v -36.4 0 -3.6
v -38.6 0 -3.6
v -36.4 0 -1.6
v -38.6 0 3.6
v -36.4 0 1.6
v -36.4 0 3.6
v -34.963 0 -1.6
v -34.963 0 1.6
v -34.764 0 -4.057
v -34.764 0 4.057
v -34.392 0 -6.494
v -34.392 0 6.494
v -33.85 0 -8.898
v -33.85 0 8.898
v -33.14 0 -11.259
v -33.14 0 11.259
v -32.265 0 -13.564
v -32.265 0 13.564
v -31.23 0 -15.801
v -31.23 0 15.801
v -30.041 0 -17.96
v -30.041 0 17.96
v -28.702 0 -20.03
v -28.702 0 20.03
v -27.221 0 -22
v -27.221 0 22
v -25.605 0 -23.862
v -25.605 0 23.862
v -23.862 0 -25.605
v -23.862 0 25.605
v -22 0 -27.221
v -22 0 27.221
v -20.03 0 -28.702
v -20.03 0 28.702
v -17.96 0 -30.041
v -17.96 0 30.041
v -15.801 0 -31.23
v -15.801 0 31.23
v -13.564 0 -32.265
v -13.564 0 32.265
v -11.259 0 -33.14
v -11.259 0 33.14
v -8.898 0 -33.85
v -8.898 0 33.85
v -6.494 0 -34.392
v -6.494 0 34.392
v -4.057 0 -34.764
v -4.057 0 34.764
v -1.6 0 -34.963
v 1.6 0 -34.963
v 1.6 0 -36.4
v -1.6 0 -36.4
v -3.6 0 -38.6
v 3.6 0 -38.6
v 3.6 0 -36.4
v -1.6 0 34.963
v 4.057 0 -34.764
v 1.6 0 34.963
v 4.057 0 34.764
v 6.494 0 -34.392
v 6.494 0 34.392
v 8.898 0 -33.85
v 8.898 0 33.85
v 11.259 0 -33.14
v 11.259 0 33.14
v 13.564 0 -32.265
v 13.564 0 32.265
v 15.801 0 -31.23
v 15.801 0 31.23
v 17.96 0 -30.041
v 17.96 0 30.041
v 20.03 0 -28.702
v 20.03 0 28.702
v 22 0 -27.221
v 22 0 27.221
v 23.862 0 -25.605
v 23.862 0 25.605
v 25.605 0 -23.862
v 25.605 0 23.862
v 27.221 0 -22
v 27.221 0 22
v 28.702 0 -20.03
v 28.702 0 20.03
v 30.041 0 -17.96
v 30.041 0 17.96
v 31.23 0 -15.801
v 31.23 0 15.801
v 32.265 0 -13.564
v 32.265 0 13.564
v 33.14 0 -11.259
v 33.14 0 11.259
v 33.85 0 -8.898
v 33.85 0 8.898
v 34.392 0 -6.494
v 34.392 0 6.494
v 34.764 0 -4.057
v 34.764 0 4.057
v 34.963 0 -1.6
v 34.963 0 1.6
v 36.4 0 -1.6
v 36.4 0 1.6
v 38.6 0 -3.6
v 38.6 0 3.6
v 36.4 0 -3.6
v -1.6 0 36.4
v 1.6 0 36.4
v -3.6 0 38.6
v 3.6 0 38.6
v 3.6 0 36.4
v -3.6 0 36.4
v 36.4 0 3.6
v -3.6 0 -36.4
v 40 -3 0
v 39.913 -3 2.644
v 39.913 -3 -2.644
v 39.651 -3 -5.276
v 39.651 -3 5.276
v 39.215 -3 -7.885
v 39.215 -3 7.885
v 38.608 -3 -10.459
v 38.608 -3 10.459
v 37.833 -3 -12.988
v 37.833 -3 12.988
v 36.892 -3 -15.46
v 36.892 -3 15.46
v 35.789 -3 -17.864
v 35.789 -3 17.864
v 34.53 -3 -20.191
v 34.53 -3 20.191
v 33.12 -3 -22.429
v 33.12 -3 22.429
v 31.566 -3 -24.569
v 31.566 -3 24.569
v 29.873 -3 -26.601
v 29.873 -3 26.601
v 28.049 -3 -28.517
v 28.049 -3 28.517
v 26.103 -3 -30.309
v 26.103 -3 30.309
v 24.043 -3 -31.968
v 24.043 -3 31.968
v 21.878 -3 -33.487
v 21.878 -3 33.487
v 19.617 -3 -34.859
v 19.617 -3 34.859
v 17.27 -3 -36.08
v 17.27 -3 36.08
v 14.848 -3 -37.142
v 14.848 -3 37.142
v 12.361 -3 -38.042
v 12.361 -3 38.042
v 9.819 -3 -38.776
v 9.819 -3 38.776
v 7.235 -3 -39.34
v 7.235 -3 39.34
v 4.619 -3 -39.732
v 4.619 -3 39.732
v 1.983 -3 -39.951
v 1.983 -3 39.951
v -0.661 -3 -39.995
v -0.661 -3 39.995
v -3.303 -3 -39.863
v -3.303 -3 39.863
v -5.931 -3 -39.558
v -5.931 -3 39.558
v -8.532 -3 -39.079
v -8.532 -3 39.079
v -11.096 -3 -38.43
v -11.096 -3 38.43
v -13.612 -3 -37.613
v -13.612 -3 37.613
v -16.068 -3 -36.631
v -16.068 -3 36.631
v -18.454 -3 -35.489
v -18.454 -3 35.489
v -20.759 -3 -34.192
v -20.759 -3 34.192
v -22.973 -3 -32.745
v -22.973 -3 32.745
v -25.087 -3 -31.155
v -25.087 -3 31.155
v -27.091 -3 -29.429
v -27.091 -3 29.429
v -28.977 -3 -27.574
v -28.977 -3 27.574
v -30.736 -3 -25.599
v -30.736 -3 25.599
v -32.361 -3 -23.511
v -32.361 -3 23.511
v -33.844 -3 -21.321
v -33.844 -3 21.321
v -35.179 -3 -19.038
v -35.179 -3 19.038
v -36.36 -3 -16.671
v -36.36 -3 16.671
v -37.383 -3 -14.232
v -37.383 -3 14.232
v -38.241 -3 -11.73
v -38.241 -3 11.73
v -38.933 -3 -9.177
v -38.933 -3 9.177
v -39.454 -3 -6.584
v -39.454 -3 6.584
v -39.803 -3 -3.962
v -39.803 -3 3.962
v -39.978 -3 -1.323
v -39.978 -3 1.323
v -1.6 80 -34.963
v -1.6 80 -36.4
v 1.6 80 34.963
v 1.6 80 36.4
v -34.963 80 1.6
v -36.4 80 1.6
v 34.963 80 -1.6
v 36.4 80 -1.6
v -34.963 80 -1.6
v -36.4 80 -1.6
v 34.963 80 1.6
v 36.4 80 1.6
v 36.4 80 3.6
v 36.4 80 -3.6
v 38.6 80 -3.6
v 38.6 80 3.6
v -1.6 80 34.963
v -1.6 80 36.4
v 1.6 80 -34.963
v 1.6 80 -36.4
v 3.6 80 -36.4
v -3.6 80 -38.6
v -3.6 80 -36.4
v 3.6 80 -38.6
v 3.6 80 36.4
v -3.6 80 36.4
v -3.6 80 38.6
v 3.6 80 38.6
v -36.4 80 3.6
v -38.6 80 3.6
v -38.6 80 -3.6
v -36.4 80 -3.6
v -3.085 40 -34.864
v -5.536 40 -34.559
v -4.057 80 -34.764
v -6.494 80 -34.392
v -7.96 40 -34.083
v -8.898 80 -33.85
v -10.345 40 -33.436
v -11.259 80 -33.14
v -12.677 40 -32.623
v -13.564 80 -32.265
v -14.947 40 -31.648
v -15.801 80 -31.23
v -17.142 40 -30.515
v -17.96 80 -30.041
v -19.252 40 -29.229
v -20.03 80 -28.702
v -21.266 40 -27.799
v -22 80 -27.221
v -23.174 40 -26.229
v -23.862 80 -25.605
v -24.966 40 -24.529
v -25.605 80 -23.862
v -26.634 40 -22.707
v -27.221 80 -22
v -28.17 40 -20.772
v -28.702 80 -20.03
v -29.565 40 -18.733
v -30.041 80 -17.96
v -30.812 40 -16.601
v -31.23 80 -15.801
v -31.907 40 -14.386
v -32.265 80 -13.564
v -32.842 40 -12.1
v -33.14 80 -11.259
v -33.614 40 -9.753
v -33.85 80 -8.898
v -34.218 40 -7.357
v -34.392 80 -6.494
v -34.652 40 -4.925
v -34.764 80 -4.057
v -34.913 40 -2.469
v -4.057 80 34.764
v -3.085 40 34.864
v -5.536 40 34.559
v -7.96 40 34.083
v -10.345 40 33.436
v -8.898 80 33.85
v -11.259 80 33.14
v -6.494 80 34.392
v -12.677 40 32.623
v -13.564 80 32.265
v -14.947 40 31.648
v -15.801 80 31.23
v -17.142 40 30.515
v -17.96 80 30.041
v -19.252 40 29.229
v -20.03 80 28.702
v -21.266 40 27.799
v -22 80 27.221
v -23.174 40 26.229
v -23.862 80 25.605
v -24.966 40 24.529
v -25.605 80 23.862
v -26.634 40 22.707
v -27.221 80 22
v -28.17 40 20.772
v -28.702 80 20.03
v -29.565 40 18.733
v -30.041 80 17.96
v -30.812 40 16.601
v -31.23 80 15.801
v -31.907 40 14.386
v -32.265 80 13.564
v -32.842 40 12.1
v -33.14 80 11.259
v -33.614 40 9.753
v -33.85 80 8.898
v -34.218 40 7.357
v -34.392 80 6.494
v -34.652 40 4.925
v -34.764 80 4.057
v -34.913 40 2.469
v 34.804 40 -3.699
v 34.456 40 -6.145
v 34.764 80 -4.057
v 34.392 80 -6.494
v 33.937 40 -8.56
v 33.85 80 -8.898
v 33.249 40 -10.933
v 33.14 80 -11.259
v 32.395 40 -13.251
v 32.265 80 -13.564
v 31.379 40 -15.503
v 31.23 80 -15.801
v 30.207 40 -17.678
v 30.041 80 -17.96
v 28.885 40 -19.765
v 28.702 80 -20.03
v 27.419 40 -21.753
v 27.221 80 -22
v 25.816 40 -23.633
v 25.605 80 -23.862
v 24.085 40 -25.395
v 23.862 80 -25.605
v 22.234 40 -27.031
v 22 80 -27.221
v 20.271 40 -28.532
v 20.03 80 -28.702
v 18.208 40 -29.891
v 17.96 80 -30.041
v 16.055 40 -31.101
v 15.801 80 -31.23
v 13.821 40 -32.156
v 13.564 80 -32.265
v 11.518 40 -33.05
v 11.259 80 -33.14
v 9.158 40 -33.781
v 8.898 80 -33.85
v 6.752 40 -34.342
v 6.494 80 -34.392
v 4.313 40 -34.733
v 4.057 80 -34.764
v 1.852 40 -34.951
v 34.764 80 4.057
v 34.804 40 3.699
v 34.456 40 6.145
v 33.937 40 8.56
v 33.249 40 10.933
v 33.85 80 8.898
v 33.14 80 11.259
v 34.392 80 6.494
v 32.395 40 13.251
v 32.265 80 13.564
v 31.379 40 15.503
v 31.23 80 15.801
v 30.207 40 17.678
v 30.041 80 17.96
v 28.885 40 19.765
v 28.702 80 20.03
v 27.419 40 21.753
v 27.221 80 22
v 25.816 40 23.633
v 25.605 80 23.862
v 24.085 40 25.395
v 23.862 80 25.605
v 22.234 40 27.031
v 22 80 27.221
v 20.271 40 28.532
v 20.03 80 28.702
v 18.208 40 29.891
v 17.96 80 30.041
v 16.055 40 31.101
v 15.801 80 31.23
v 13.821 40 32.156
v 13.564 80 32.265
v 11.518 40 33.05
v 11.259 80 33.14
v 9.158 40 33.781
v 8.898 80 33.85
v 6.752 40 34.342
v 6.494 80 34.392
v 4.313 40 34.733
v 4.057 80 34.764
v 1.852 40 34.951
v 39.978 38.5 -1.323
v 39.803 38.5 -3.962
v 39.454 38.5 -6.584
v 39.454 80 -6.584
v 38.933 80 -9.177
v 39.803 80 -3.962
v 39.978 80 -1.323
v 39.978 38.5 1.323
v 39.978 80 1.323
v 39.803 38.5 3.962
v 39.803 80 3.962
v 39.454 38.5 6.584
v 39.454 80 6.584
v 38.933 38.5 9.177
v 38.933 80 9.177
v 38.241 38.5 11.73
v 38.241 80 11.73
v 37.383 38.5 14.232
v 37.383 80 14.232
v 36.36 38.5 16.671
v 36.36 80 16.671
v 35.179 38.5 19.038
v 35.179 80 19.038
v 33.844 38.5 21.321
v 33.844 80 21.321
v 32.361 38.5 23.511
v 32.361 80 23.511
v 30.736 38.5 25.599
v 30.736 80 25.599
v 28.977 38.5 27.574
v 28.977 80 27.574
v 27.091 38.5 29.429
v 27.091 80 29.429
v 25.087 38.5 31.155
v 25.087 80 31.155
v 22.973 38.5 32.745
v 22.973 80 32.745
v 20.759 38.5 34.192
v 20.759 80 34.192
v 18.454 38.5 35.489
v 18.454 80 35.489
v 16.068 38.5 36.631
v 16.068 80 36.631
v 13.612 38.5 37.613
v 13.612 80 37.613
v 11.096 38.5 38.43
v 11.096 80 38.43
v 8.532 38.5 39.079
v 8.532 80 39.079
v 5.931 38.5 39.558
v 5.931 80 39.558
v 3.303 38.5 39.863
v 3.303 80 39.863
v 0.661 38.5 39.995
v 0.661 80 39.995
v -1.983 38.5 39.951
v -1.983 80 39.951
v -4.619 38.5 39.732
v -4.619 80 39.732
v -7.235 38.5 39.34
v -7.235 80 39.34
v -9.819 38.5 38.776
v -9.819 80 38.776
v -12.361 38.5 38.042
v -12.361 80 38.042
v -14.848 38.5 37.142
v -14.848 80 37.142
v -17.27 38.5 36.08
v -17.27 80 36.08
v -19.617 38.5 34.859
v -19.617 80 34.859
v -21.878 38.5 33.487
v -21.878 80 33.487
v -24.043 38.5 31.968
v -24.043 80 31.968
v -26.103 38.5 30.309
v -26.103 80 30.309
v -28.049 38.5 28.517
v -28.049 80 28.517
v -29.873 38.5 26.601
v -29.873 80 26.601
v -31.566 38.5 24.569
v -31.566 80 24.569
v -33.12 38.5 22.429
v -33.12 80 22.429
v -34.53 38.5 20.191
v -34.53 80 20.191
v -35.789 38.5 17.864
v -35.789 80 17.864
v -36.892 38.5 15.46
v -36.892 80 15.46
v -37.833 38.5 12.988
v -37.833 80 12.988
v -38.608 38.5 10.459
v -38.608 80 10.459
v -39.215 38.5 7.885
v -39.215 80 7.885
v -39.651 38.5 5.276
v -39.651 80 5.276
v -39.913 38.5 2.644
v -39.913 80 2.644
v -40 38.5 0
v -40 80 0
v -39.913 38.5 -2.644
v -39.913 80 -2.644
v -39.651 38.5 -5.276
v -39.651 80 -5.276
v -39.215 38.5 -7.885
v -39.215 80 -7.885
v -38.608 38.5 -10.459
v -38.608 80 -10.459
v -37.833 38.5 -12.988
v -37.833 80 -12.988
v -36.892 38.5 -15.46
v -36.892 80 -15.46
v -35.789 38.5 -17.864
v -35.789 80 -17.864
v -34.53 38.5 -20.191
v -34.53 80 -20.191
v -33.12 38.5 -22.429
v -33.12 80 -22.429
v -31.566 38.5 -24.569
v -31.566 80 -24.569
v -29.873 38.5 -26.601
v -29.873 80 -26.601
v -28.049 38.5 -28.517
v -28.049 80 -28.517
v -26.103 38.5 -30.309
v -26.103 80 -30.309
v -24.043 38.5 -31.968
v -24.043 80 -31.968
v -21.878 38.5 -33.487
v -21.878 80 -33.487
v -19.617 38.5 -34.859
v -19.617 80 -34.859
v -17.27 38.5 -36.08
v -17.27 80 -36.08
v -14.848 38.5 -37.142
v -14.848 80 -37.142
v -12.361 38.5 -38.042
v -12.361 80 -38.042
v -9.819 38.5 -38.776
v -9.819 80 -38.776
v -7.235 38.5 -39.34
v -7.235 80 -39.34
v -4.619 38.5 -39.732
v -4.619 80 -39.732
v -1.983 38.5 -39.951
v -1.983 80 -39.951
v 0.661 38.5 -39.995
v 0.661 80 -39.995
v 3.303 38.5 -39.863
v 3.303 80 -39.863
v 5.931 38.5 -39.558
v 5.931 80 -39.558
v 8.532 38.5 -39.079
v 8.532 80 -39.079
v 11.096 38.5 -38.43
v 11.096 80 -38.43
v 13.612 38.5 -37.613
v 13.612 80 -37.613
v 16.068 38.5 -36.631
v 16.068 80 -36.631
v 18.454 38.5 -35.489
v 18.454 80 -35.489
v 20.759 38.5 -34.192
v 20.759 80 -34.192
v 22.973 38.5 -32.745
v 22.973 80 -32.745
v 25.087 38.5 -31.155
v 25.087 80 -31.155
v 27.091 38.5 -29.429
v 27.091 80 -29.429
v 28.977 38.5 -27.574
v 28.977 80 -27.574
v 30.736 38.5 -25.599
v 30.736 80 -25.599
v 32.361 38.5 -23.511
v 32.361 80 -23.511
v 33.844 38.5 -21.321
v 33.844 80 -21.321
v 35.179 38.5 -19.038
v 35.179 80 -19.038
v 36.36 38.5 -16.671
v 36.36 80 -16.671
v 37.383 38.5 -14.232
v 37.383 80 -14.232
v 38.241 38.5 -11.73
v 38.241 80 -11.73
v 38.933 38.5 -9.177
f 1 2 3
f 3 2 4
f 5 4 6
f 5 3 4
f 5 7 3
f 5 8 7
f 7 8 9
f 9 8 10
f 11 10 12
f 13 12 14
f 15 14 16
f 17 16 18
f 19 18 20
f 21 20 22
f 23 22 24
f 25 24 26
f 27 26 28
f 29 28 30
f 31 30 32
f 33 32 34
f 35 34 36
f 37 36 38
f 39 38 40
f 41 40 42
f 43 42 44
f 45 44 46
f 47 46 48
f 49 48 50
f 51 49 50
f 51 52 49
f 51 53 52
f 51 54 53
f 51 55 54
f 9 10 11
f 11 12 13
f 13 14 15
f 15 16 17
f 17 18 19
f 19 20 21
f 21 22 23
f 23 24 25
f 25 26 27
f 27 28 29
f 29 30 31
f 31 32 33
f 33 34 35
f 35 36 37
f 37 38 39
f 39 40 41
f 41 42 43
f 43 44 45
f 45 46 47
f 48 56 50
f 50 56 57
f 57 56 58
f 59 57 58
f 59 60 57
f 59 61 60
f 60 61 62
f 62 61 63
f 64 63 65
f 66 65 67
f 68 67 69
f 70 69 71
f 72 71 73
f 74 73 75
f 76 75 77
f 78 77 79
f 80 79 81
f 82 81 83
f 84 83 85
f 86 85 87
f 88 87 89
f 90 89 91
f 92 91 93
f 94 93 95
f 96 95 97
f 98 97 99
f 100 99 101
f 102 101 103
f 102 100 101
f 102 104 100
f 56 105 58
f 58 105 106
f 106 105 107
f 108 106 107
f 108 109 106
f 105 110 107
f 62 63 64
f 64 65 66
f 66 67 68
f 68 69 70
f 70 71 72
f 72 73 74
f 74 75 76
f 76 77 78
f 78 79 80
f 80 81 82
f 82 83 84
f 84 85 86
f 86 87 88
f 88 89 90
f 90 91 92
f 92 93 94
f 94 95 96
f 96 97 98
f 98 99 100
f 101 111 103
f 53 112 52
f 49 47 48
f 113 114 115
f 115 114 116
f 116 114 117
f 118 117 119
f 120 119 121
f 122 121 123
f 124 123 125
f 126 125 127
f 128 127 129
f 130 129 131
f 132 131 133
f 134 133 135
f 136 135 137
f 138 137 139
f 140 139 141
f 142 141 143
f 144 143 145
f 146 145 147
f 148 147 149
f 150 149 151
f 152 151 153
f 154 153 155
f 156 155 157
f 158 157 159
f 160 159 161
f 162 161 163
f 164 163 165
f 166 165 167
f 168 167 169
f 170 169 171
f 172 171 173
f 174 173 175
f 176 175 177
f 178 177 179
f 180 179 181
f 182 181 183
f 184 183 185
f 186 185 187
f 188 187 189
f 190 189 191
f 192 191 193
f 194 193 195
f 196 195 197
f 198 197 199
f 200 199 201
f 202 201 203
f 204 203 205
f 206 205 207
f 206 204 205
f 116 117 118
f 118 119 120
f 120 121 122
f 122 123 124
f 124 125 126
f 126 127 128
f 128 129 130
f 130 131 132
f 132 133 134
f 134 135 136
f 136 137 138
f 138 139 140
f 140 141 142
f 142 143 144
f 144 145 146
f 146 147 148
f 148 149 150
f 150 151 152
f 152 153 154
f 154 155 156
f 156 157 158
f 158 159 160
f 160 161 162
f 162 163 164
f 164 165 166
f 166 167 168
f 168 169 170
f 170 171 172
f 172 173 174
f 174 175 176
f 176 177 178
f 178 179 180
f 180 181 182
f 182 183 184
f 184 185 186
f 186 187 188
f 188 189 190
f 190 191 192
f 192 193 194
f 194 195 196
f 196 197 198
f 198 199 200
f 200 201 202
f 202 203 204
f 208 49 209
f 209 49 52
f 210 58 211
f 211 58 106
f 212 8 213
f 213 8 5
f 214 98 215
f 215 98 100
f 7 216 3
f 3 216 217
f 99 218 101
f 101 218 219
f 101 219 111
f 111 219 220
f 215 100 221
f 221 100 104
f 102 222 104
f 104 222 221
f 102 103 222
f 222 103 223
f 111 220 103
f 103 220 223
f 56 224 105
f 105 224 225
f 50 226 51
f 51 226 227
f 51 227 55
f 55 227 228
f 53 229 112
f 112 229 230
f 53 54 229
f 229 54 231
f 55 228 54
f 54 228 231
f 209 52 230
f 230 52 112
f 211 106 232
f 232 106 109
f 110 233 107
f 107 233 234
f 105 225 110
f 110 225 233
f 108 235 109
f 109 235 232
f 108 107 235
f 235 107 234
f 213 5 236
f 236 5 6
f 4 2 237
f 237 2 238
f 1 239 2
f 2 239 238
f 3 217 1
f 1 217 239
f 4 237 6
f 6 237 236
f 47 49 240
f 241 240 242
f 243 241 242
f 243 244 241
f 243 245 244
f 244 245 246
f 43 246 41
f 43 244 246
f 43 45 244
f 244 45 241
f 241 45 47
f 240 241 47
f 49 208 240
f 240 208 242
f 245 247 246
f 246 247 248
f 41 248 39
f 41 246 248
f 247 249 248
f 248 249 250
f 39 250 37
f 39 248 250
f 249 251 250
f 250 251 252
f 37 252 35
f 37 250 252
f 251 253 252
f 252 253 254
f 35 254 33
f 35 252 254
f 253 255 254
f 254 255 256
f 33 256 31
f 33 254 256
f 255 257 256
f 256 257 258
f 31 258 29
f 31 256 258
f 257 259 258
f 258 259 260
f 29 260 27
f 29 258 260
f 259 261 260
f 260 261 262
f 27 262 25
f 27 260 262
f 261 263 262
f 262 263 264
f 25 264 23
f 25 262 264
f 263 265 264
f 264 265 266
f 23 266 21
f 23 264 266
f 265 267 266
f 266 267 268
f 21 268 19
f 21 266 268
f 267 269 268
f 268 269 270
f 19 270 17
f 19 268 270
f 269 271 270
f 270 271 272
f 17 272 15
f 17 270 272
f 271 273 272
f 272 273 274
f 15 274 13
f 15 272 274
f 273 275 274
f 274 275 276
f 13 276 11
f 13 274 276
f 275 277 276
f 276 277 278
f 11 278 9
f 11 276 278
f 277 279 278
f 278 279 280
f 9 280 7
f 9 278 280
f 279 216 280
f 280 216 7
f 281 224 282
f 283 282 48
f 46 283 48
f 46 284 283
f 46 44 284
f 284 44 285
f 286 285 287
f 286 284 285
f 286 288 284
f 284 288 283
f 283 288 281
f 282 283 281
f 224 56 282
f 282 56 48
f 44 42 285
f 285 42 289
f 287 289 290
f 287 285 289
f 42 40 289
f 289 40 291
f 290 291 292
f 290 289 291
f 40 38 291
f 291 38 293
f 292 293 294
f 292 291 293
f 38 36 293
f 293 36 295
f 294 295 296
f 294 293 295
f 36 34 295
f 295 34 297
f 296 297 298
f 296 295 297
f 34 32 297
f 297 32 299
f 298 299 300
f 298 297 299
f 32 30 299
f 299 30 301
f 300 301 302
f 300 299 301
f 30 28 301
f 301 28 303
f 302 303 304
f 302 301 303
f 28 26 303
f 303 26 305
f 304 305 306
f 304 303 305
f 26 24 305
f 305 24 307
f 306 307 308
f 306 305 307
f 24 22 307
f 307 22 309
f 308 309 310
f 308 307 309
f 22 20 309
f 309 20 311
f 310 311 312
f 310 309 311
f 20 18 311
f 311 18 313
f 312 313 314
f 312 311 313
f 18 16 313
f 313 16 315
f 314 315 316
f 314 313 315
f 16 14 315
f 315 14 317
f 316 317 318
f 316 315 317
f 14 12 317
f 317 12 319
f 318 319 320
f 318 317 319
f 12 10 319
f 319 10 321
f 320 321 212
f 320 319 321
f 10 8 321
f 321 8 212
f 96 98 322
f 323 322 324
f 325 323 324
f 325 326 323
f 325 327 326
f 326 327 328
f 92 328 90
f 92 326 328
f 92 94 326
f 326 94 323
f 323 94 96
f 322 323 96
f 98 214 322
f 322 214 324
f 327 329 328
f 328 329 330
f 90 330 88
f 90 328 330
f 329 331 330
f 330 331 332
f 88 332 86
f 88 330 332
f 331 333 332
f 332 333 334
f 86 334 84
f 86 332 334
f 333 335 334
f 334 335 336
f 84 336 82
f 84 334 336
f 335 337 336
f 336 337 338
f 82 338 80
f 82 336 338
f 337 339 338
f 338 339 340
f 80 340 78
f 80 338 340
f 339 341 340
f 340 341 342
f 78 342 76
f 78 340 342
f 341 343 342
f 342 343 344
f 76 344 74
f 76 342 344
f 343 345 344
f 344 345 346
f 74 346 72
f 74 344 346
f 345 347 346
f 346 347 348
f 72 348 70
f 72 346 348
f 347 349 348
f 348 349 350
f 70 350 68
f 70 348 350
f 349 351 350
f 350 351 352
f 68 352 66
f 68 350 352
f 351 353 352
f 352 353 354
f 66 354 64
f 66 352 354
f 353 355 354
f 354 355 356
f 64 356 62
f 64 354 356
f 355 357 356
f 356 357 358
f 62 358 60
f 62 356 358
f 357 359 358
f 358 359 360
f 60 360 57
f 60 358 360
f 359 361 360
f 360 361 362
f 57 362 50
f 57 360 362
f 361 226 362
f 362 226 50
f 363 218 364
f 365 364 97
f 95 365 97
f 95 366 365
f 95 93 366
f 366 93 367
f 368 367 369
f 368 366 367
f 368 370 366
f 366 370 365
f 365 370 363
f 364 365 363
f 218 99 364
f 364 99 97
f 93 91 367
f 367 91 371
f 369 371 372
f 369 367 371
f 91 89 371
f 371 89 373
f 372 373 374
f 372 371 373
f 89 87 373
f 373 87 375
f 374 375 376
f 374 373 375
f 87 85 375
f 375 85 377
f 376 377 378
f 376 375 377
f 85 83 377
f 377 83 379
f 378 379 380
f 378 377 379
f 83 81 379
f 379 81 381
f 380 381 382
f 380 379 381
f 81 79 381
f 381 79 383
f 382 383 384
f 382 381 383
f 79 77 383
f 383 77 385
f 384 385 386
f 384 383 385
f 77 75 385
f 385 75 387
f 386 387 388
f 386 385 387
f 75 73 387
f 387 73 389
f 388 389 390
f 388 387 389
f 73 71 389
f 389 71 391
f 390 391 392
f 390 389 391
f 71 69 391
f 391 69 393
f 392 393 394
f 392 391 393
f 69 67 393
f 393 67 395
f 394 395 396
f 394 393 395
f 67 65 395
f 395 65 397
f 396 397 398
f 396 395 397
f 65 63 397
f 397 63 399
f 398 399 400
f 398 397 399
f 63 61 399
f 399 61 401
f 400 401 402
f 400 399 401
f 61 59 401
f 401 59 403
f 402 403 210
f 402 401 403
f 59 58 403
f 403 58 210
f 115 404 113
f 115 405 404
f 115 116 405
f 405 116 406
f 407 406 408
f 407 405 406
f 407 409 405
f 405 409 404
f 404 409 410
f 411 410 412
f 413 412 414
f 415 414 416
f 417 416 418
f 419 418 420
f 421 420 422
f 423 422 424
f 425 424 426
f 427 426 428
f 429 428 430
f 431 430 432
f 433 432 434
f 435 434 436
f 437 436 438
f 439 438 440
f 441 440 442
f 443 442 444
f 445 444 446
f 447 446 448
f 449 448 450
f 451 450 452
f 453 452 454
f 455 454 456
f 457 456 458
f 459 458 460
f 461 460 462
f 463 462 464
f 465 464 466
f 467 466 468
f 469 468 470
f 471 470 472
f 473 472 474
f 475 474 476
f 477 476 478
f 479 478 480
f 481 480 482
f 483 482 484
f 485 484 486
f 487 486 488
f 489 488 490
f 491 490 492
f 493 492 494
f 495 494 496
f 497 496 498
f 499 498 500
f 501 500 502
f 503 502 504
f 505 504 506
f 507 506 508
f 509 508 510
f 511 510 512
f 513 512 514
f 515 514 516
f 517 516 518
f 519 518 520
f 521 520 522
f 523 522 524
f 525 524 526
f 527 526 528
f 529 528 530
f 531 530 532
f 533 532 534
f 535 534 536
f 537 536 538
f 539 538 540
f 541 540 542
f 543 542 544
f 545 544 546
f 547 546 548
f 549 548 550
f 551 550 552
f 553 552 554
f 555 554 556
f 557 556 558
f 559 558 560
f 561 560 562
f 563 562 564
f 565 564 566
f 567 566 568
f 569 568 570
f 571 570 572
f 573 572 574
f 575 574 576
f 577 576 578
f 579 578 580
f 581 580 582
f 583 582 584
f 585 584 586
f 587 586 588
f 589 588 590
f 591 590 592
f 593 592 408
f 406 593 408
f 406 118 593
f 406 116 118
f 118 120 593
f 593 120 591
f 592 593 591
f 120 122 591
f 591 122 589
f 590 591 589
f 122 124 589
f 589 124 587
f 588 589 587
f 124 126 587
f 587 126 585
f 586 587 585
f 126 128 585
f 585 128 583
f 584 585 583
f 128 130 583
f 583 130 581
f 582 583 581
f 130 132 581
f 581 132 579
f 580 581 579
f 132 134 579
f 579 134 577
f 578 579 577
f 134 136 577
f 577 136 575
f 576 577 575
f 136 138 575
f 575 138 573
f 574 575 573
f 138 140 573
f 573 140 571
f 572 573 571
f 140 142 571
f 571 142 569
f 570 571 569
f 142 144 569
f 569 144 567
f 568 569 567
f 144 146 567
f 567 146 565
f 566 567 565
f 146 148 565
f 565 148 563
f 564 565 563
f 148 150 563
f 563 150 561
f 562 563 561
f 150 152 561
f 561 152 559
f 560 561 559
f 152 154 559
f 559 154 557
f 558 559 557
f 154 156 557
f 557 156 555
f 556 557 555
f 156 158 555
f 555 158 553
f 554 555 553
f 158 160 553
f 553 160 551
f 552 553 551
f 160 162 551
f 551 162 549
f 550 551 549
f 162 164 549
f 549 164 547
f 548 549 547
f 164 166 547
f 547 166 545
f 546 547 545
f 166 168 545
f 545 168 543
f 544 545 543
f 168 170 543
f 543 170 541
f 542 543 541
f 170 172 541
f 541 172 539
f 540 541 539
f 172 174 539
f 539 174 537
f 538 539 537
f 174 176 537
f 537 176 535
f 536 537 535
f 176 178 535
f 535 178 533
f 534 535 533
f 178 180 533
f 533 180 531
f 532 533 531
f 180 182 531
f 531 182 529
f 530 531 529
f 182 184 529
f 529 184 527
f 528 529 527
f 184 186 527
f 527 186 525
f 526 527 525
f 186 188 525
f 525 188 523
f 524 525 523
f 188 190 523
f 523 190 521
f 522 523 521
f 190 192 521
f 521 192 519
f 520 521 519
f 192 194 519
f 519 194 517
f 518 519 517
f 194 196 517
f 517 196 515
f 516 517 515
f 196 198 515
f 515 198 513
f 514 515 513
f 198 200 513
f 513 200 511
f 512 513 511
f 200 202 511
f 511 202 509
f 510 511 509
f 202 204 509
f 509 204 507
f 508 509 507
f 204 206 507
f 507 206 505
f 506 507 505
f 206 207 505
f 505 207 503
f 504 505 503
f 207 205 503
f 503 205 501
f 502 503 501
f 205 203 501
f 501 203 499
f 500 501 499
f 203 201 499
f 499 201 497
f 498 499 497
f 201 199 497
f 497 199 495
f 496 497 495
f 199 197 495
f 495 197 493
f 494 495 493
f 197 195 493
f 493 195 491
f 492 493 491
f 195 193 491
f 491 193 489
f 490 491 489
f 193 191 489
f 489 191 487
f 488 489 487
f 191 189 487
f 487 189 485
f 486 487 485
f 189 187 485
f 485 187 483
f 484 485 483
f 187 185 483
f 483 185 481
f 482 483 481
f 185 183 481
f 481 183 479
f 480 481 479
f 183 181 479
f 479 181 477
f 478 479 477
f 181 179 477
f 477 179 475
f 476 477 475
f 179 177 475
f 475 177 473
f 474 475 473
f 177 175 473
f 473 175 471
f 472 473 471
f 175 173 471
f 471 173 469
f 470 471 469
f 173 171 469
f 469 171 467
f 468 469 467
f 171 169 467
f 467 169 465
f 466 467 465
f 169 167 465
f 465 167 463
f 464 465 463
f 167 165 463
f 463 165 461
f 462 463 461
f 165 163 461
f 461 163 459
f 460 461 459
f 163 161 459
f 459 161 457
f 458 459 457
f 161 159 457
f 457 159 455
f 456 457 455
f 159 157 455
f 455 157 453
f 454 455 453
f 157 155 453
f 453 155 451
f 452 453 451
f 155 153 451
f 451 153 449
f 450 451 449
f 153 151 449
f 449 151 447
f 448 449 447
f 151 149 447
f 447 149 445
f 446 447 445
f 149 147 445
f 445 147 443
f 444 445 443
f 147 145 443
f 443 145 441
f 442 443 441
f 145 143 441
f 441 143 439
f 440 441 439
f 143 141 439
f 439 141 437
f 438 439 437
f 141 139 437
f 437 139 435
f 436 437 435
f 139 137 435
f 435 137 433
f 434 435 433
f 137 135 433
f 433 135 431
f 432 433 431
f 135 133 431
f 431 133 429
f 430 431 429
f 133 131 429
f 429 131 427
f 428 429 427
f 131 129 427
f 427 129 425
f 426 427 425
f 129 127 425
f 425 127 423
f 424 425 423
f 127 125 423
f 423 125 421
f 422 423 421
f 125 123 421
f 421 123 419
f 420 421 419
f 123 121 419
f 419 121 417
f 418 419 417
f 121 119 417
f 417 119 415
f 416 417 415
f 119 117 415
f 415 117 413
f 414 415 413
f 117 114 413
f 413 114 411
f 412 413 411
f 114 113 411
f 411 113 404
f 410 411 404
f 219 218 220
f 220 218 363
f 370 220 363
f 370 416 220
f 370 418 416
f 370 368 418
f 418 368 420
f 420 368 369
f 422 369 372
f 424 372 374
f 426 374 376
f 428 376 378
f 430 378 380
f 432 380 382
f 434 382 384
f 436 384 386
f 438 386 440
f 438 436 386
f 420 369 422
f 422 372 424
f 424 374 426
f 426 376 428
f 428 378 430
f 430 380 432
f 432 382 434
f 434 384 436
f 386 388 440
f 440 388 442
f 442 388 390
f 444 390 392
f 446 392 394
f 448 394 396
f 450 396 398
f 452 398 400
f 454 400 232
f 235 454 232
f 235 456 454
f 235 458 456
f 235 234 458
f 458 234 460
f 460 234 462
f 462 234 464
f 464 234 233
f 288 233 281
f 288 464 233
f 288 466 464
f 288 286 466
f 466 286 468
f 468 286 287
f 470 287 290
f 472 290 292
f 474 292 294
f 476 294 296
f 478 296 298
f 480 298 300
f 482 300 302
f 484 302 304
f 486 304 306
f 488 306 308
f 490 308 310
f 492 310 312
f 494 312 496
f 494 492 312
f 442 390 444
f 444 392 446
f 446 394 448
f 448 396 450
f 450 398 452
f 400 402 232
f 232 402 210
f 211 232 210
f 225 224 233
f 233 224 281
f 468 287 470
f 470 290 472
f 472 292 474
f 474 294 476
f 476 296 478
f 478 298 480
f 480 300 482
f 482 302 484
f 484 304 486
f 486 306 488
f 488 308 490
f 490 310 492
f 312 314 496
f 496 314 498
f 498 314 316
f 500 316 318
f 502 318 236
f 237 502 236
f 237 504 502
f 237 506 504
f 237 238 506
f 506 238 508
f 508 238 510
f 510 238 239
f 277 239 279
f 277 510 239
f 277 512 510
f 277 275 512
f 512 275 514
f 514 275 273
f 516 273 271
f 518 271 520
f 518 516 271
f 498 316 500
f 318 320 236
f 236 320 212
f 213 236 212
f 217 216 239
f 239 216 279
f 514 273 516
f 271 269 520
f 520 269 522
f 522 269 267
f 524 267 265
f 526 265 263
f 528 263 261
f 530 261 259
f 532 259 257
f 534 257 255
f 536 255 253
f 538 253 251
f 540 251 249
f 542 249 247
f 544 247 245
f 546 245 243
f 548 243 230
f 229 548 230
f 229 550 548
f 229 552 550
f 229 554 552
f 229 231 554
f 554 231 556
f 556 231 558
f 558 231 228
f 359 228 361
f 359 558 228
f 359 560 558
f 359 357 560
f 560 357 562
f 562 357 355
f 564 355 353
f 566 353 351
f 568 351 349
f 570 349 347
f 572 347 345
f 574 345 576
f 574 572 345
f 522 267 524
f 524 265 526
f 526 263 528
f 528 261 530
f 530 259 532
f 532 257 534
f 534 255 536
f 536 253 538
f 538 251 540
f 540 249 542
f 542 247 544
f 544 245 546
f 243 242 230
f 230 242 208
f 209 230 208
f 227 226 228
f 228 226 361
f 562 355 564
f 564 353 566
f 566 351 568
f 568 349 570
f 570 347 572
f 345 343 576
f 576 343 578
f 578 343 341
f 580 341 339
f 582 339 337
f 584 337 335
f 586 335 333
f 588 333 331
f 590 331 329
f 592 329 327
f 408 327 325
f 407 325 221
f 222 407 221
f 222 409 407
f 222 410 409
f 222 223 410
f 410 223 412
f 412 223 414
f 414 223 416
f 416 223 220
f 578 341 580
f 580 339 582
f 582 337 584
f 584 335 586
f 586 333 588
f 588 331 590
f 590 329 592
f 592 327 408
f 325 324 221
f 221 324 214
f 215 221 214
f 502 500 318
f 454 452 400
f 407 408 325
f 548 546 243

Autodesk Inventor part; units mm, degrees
ref_plane "YZ Plane" through (0, 0, 0) normal (1, 0, 0) x (0, 1, 0)
ref_plane "XZ Plane" through (0, 0, 0) normal (0, 1, 0) x (-1, 0, 0)
ref_plane "XY Plane" through (0, 0, 0) normal (0, 0, 1) x (1, 0, 0)
sketch "スケッチ1" plane through (0, 0, 0) normal (0, 1, 0) x (-1, 0, 0)
  circle A0 centre (0, 0) radius 35
  circle A1 centre (0, 0) radius 40
  dimension "d0" = 70
  dimension "d1" = 80
extrude "押し出し1" add sketch "スケッチ1" along normal blind 80
sketch "スケッチ2" plane through (0, 0, 0) normal (0, -1, 0) x (1, 0, 0)
  line L0 (37.5, 1.6) -> (-37.5, 1.6)
  line L1 (-37.5, 1.6) -> (-37.5, -1.6)
  line L2 (-37.5, -1.6) -> (37.5, -1.6)
  line L3 (37.5, -1.6) -> (37.5, 1.6)
  line L4 (37.5, 1.6) -> (-37.5, -1.6) construction
  line L5 (-37.5, 1.6) -> (37.5, -1.6) construction
  line L6 (-1.6, 37.5) -> (1.6, 37.5)
  line L7 (1.6, 37.5) -> (1.6, -37.5)
  line L8 (1.6, -37.5) -> (-1.6, -37.5)
  line L9 (-1.6, -37.5) -> (-1.6, 37.5)
  line L10 (-1.6, 37.5) -> (1.6, -37.5) construction
  line L11 (1.6, 37.5) -> (-1.6, -37.5) construction
  line L12 (3.6, 38.6) -> (-3.6, 38.6)
  line L13 (-3.6, 38.6) -> (-3.6, 36.4)
  line L14 (-3.6, 36.4) -> (3.6, 36.4)
  line L15 (3.6, 36.4) -> (3.6, 38.6)
  line L16 (3.6, 38.6) -> (-3.6, 36.4) construction
  line L17 (-3.6, 38.6) -> (3.6, 36.4) construction
  line L18 (3.6, -36.4) -> (-3.6, -36.4)
  line L19 (-3.6, -36.4) -> (-3.6, -38.6)
  line L20 (-3.6, -38.6) -> (3.6, -38.6)
  line L21 (3.6, -38.6) -> (3.6, -36.4)
  line L22 (3.6, -36.4) -> (-3.6, -38.6) construction
  line L23 (-3.6, -36.4) -> (3.6, -38.6) construction
  line L24 (36.4, 3.6) -> (38.6, 3.6)
  line L25 (38.6, 3.6) -> (38.6, -3.6)
  line L26 (38.6, -3.6) -> (36.4, -3.6)
  line L27 (36.4, -3.6) -> (36.4, 3.6)
  line L28 (36.4, 3.6) -> (38.6, -3.6) construction
  line L29 (38.6, 3.6) -> (36.4, -3.6) construction
  line L30 (-36.4, 3.6) -> (-38.6, 3.6)
  line L31 (-38.6, 3.6) -> (-38.6, -3.6)
  line L32 (-38.6, -3.6) -> (-36.4, -3.6)
  line L33 (-36.4, -3.6) -> (-36.4, 3.6)
  line L34 (-36.4, 3.6) -> (-38.6, -3.6) construction
  line L35 (-38.6, 3.6) -> (-36.4, -3.6) construction
  point P0 (0, 0)
  point P1 (0, 37.5)
  point P2 (0, -37.5)
  point P3 (37.5, 0)
  point P4 (-37.5, 0)
  dimension "d4" = 75
  dimension "d5" = 3.2
  dimension "d6" = 3.2
  dimension "d7" = 75
  dimension "d8" = 7.2
  dimension "d9" = 2.2
  dimension "d10" = 7.2
  dimension "d11" = 2.2
  dimension "d12" = 2.2
  dimension "d13" = 7.2
  dimension "d14" = 2.2
  dimension "d15" = 7.2
extrude "押し出し2" cut sketch "スケッチ2" against normal blind 80
sketch "スケッチ3" plane through (0, 0, 0) normal (0, -1, 0) x (1, 0, 0)
  circle A0 centre (0, 0) radius 40
extrude "押し出し3" add sketch "スケッチ3" along normal blind 3
properties part number "box"
